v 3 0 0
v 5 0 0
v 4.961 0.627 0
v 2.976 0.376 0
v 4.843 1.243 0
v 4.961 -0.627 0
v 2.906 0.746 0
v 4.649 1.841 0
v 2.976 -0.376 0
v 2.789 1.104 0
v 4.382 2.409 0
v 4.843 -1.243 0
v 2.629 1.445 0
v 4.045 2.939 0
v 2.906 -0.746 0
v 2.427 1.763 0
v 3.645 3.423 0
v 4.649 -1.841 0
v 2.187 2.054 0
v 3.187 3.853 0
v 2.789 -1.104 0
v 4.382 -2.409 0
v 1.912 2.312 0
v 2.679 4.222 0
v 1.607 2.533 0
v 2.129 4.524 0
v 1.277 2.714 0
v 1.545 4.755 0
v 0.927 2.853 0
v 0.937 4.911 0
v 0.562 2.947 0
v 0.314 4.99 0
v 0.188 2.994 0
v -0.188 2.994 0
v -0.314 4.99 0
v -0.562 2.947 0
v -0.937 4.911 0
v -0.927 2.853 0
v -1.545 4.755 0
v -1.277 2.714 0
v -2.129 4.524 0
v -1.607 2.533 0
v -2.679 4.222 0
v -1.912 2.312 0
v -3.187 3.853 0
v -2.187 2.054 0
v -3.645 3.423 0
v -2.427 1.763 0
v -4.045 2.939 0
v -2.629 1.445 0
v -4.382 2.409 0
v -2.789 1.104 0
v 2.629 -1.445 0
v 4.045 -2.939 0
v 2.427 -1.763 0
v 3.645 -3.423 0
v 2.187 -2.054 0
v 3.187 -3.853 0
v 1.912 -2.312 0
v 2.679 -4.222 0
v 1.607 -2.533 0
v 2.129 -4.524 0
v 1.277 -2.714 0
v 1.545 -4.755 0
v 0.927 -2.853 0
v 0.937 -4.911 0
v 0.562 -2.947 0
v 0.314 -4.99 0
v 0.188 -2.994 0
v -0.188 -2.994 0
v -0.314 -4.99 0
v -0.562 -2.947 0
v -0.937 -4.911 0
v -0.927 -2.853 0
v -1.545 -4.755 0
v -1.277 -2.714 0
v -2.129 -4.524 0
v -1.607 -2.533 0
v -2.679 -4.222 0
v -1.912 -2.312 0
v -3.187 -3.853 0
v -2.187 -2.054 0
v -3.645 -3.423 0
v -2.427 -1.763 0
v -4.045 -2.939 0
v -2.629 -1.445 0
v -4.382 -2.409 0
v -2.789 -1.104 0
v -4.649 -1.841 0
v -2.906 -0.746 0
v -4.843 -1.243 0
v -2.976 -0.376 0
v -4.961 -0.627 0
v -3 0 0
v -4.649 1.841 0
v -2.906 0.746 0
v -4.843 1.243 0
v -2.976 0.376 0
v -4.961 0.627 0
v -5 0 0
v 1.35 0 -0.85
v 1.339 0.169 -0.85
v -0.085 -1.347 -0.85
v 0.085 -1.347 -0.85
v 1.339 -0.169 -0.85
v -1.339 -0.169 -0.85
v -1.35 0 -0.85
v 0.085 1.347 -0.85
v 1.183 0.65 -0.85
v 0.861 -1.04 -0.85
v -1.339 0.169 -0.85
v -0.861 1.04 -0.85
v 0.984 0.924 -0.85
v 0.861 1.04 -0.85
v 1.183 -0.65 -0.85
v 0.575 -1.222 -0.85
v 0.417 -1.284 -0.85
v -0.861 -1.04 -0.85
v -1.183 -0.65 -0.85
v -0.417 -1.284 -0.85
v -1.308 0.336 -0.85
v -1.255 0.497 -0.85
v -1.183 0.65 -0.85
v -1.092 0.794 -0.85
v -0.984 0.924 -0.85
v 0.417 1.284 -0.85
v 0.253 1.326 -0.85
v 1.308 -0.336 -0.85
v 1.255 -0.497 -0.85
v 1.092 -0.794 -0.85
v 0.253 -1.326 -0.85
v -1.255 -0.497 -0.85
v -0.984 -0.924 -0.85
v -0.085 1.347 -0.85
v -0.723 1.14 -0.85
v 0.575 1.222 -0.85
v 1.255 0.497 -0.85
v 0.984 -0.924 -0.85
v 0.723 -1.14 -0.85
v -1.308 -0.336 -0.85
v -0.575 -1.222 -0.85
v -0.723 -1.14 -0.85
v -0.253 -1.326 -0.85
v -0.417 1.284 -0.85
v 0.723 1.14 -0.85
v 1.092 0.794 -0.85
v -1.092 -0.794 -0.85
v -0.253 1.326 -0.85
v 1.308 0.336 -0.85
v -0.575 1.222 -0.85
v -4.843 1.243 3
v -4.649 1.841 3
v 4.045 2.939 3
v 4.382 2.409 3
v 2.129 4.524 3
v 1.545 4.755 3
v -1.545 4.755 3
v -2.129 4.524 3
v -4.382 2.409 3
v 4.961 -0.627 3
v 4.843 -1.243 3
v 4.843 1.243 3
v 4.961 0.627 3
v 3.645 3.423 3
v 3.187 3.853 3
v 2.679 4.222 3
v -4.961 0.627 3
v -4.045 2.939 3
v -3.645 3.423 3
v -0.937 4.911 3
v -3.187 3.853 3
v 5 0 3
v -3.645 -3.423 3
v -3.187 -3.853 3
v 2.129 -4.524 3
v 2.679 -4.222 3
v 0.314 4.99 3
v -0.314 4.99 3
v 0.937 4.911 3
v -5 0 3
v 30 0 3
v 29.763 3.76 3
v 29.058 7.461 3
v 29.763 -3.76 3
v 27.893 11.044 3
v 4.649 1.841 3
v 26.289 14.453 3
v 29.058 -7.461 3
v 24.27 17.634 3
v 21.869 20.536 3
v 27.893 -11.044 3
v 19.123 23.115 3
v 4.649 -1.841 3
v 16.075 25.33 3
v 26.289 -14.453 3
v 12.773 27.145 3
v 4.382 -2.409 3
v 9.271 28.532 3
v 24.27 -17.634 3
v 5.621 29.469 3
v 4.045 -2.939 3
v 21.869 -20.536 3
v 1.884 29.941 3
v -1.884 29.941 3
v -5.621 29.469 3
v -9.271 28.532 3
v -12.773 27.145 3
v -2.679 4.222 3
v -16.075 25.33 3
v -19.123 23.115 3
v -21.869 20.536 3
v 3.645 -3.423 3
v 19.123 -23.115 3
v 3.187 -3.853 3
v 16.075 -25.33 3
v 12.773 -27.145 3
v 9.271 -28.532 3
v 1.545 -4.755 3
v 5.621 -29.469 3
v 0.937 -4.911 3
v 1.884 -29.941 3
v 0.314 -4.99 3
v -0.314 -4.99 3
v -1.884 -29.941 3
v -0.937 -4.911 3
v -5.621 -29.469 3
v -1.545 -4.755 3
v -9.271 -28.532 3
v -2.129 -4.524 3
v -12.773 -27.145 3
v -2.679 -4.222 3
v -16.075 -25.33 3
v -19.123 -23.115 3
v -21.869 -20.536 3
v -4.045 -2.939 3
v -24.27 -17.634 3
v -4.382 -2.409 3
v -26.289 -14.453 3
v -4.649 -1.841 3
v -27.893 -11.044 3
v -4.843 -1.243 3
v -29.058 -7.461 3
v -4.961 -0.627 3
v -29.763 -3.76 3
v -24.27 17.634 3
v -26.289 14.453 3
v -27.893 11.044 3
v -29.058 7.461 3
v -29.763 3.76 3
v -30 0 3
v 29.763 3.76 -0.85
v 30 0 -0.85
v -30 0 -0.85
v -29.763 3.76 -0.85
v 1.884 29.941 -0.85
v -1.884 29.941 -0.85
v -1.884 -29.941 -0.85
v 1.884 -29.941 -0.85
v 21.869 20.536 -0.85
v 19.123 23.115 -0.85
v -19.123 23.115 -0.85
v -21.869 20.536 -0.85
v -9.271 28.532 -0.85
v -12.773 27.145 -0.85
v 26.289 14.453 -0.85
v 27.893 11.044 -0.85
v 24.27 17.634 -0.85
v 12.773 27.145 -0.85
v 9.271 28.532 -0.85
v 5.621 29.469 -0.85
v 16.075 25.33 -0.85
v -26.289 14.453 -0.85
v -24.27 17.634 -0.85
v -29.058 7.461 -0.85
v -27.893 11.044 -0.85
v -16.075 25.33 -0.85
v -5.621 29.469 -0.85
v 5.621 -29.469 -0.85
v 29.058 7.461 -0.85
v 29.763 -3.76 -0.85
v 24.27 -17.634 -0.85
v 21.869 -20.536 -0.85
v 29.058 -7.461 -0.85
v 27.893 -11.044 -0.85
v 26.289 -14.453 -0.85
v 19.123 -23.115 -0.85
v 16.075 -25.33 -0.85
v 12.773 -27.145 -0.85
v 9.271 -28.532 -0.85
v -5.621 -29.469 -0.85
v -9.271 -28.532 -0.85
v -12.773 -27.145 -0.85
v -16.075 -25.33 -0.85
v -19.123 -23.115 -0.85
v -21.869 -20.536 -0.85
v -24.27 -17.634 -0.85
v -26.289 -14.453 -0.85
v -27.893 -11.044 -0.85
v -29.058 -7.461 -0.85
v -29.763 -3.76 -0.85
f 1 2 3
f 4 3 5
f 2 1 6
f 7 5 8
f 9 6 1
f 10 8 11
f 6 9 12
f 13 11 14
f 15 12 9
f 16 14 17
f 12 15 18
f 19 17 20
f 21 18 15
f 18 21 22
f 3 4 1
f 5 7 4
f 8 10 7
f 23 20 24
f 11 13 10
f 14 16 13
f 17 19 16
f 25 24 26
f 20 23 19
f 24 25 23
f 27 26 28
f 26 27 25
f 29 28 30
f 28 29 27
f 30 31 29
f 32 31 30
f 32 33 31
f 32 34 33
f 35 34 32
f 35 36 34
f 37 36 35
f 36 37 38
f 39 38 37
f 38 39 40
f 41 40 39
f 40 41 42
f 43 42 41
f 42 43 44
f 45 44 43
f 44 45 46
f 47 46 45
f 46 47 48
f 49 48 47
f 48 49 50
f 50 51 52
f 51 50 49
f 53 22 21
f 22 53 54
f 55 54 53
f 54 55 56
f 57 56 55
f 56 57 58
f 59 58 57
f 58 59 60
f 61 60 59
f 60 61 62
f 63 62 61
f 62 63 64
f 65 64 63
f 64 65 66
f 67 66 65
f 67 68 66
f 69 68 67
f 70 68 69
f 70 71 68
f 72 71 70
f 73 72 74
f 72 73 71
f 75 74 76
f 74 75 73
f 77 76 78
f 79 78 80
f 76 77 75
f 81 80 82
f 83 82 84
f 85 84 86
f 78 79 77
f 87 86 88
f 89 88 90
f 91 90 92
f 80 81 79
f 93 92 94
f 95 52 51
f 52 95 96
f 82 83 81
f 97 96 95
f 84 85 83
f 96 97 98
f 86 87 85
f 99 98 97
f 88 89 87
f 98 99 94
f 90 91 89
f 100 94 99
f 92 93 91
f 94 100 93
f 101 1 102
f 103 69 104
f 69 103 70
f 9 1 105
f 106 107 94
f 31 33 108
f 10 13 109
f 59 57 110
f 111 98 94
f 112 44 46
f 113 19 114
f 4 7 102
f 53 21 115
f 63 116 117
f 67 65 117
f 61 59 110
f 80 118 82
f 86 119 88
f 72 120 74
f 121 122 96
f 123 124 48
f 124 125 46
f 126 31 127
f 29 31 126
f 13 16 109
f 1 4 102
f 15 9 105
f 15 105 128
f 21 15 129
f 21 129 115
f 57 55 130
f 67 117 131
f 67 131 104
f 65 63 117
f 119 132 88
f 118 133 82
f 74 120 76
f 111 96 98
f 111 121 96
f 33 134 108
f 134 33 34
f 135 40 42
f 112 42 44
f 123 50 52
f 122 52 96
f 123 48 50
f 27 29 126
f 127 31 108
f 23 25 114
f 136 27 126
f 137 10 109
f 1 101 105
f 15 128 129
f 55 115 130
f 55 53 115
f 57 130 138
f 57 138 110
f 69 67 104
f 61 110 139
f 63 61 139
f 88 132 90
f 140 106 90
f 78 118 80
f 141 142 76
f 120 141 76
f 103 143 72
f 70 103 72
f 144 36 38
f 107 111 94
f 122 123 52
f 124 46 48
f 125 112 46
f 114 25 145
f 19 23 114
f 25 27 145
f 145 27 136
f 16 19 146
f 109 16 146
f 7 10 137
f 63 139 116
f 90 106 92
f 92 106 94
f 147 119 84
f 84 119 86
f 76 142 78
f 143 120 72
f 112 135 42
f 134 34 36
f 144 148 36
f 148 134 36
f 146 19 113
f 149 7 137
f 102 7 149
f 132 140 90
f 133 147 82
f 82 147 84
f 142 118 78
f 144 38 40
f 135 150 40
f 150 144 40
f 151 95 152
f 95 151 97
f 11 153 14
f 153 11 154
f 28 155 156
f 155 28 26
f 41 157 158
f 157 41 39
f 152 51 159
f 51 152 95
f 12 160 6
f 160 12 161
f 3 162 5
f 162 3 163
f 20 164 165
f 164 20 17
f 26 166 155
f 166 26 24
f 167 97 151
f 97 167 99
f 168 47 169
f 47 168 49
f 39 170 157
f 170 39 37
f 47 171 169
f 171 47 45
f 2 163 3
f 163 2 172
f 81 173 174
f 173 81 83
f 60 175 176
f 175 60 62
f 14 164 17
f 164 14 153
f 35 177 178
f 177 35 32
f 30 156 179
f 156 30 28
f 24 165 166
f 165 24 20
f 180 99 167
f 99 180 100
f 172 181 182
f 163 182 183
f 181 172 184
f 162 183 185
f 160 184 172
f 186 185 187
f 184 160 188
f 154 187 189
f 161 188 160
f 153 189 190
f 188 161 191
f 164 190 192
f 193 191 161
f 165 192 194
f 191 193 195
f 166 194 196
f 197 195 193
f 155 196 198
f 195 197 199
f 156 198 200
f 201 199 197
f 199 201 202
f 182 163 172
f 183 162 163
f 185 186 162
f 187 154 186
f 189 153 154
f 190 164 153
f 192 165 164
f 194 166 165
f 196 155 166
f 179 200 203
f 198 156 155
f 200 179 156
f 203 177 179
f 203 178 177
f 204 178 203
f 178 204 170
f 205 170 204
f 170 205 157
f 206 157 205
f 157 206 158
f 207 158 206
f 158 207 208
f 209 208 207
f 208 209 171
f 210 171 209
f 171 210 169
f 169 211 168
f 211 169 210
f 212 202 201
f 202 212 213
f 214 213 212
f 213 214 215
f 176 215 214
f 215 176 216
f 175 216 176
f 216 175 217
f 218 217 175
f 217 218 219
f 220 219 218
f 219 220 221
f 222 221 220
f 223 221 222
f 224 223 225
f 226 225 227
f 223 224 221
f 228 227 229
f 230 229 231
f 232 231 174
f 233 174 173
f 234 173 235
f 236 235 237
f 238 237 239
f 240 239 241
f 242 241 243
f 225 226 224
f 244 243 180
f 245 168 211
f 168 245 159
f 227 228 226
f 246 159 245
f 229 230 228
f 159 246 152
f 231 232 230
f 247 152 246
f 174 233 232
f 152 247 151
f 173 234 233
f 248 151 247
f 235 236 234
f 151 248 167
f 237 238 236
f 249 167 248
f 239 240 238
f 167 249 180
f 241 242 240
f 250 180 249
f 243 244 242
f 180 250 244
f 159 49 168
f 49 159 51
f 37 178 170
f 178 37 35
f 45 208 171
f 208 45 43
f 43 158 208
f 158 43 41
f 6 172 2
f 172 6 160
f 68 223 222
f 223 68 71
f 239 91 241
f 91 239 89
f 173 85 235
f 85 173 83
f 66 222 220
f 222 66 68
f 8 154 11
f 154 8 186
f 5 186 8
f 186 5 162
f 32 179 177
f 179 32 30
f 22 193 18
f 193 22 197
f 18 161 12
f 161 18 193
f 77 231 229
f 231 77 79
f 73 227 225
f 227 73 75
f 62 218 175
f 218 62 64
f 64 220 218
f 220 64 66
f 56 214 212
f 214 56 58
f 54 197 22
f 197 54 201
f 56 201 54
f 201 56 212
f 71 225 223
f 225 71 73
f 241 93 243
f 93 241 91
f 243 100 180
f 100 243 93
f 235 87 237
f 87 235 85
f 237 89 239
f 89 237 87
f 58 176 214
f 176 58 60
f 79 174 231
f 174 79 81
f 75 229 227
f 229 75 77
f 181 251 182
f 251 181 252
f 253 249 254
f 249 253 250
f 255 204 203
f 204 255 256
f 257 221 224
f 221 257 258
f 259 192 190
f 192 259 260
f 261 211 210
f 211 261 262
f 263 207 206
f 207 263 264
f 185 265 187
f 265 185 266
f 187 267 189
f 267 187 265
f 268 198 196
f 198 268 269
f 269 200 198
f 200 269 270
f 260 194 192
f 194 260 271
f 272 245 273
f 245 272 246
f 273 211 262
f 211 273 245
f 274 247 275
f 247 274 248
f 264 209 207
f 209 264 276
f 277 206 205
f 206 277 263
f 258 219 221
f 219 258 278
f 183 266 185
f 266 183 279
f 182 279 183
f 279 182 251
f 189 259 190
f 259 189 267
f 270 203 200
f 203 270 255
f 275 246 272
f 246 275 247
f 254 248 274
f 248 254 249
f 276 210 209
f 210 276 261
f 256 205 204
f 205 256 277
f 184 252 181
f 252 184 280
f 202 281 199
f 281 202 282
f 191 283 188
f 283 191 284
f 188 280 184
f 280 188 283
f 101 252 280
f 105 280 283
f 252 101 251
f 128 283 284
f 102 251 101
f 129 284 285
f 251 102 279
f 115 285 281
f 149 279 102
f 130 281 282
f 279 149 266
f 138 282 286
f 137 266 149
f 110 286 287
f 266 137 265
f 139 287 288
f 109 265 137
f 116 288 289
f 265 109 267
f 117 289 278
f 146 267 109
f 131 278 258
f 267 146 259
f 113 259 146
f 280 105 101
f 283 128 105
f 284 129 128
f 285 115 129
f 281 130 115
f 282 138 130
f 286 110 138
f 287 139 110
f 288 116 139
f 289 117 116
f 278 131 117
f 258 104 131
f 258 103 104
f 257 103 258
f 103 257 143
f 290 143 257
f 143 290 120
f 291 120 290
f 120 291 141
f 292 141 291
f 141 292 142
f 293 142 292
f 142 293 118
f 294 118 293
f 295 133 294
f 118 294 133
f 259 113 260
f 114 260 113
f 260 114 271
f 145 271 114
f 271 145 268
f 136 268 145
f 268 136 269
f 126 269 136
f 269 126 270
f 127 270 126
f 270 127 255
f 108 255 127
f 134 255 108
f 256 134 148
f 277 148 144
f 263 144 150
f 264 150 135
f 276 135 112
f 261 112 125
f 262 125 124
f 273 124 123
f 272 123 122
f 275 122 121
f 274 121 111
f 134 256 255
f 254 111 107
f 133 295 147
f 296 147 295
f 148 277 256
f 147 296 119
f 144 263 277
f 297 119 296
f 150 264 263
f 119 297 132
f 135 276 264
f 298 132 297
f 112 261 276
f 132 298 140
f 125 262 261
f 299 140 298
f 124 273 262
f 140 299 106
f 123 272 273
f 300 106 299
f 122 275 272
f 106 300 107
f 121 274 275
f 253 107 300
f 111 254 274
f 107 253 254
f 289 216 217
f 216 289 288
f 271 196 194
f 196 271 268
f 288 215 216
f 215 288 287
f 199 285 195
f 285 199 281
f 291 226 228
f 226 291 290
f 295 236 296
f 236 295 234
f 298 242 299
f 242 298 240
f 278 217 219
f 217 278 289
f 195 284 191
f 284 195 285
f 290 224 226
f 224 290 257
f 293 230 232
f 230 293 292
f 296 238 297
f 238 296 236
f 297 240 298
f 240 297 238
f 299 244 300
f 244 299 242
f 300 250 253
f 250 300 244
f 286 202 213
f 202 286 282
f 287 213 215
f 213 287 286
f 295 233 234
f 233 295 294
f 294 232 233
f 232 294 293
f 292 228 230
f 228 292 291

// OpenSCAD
$fn = 50;


difference() {
	union() {
		translate(v = [0, 0, -0.8500000000]) {
			cylinder(h = 3.8500000000, r = 30.0000000000);
		}
	}
	union() {
		translate(v = [0, 0, 0]) {
			rotate(a = [0, 0, 0]) {
				difference() {
					union() {
						translate(v = [0, 0, -3.8500000000]) {
							cylinder(h = 3.8500000000, r = 1.0000000000);
						}
						translate(v = [0, 0, -0.8500000000]) {
							cylinder(h = 0.8500000000, r1 = 1.3500000000, r2 = 3.0000000000);
						}
						translate(v = [0, 0, -3.8500000000]) {
							cylinder(h = 3.8500000000, r = 1.3500000000);
						}
						translate(v = [0, 0, -3.8500000000]) {
							cylinder(h = 3.8500000000, r = 1.0000000000);
						}
					}
					union();
				}
			}
		}
		#cylinder(h = 3, r = 5.0000000000);
	}
}
